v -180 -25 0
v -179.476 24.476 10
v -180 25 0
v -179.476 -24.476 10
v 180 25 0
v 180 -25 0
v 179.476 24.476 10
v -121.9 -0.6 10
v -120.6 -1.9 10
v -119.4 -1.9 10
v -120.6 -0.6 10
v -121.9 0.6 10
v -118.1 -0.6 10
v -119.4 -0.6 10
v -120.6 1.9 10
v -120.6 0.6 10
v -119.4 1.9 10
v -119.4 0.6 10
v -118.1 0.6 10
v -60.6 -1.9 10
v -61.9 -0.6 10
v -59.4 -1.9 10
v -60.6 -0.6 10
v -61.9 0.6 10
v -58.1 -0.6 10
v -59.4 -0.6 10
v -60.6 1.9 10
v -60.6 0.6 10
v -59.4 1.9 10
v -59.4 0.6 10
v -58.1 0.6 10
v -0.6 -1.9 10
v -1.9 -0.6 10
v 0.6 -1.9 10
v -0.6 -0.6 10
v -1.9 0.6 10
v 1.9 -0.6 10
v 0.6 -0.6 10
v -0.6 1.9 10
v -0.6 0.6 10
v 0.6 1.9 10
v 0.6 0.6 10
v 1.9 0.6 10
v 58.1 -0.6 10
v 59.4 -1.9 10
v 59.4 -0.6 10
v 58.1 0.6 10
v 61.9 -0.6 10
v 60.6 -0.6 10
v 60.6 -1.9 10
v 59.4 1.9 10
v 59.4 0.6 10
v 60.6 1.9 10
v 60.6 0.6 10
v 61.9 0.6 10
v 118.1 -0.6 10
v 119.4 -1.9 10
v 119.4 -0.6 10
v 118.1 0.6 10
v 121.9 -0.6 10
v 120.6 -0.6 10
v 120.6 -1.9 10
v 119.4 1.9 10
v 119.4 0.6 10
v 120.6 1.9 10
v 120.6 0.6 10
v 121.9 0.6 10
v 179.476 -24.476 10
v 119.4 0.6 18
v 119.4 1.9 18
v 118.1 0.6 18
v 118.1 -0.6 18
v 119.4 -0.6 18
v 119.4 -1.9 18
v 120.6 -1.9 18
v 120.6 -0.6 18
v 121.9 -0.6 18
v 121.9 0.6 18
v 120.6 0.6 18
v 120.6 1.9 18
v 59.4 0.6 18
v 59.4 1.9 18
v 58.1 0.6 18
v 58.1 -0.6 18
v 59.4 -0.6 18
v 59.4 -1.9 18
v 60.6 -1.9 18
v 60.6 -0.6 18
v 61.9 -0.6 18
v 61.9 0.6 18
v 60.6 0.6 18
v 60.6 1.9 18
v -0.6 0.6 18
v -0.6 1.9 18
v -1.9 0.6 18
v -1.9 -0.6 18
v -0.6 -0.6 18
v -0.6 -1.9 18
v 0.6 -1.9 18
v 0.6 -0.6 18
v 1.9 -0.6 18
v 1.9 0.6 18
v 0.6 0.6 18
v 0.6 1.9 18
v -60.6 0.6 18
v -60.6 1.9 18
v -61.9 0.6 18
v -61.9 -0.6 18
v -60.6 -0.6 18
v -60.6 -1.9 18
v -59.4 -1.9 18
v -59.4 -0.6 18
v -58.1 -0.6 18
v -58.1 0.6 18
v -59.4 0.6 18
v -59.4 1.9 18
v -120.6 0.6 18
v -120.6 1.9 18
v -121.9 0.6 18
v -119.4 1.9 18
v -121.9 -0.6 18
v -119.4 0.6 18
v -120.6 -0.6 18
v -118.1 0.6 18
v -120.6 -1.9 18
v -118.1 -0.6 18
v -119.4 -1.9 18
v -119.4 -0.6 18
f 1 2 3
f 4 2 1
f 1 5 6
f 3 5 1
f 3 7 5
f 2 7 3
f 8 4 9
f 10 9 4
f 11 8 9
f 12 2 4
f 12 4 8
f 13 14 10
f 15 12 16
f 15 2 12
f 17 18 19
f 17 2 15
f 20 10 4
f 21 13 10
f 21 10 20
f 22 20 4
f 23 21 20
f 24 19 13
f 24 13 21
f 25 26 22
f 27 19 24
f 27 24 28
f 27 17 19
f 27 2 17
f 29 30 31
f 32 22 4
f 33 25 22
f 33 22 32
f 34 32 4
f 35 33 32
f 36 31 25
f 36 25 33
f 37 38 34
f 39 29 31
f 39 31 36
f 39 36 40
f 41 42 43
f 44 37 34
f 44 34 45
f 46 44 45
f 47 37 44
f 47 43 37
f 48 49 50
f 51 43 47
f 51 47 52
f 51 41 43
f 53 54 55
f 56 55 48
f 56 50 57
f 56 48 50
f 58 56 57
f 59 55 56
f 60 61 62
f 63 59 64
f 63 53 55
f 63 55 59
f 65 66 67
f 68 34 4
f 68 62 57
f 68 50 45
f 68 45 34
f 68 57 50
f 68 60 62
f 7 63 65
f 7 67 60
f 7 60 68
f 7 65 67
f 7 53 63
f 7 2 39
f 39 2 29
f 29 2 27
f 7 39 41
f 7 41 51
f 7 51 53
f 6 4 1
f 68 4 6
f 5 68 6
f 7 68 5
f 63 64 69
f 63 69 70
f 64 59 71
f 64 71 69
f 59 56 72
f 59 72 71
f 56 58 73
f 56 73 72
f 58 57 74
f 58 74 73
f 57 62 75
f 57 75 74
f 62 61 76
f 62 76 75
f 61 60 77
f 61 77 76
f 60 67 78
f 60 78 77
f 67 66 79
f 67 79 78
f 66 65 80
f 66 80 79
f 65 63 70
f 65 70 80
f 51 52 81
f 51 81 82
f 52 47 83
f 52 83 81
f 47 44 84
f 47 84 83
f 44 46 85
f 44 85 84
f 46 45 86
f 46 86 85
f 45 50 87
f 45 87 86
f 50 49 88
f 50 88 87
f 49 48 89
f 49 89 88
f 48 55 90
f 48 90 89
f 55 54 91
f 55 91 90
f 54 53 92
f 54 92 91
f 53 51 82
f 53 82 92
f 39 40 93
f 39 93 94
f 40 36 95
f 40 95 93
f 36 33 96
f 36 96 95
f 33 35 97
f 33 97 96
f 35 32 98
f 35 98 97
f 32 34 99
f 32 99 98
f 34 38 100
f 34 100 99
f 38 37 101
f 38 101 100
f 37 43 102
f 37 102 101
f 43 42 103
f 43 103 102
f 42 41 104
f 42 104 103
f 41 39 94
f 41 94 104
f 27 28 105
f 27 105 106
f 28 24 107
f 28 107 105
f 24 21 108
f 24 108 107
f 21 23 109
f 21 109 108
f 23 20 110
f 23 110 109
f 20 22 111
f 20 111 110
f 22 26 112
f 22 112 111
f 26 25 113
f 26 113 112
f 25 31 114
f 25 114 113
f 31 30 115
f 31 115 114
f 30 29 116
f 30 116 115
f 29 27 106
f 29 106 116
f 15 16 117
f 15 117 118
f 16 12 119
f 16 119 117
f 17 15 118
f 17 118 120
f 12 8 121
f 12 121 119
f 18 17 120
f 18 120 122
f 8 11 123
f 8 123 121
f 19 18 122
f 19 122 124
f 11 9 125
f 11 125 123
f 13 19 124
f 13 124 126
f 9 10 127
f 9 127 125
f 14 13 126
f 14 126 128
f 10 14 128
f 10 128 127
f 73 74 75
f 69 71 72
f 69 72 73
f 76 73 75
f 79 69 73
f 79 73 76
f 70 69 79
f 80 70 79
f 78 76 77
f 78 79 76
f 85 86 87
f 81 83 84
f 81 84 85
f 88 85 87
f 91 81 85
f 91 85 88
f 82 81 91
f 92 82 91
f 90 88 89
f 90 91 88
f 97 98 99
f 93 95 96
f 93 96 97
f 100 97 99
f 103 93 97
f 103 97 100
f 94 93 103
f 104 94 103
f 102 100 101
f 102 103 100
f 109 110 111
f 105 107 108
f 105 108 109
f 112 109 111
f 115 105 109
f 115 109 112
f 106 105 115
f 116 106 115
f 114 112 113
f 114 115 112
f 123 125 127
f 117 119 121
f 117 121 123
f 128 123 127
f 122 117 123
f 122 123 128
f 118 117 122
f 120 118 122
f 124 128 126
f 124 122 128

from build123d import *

# Parameters (mm, degrees)
SKETCH_W            = 360
SKETCH_H            = 50
PAD_DEPTH           = 10
PAD_TAPER           = 3
PAD001_DEPTH        = 8
LINEARPATTERN_COUNT = 5
LINEARPATTERN_PITCH = 60


with BuildPart() as part:
    # Sketch → Pad (new body)
    with BuildSketch(Plane.XY):
        Rectangle(SKETCH_W, SKETCH_H)
    extrude(amount=PAD_DEPTH, taper=PAD_TAPER)

    # Sketch001 (on DatumPlane) → Pad001 (join)
    with BuildSketch(Plane.XY.offset(10)):
        Polygon((-120.6, 1.9), (-119.4, 1.9), (-119.4, 0.6), (-118.1, 0.6), (-118.1, -0.6), (-119.4, -0.6), (-119.4, -1.9), (-120.6, -1.9), (-120.6, -0.6), (-121.9, -0.6), (-121.9, 0.6), (-120.6, 0.6), align=None)
    pad001 = extrude(amount=PAD001_DEPTH)

    # LinearPattern: Pad001 ×5
    with Locations(*[(i * LINEARPATTERN_PITCH, 0, 0) for i in range(1, LINEARPATTERN_COUNT)]):
        add(pad001)


solid = part.part
